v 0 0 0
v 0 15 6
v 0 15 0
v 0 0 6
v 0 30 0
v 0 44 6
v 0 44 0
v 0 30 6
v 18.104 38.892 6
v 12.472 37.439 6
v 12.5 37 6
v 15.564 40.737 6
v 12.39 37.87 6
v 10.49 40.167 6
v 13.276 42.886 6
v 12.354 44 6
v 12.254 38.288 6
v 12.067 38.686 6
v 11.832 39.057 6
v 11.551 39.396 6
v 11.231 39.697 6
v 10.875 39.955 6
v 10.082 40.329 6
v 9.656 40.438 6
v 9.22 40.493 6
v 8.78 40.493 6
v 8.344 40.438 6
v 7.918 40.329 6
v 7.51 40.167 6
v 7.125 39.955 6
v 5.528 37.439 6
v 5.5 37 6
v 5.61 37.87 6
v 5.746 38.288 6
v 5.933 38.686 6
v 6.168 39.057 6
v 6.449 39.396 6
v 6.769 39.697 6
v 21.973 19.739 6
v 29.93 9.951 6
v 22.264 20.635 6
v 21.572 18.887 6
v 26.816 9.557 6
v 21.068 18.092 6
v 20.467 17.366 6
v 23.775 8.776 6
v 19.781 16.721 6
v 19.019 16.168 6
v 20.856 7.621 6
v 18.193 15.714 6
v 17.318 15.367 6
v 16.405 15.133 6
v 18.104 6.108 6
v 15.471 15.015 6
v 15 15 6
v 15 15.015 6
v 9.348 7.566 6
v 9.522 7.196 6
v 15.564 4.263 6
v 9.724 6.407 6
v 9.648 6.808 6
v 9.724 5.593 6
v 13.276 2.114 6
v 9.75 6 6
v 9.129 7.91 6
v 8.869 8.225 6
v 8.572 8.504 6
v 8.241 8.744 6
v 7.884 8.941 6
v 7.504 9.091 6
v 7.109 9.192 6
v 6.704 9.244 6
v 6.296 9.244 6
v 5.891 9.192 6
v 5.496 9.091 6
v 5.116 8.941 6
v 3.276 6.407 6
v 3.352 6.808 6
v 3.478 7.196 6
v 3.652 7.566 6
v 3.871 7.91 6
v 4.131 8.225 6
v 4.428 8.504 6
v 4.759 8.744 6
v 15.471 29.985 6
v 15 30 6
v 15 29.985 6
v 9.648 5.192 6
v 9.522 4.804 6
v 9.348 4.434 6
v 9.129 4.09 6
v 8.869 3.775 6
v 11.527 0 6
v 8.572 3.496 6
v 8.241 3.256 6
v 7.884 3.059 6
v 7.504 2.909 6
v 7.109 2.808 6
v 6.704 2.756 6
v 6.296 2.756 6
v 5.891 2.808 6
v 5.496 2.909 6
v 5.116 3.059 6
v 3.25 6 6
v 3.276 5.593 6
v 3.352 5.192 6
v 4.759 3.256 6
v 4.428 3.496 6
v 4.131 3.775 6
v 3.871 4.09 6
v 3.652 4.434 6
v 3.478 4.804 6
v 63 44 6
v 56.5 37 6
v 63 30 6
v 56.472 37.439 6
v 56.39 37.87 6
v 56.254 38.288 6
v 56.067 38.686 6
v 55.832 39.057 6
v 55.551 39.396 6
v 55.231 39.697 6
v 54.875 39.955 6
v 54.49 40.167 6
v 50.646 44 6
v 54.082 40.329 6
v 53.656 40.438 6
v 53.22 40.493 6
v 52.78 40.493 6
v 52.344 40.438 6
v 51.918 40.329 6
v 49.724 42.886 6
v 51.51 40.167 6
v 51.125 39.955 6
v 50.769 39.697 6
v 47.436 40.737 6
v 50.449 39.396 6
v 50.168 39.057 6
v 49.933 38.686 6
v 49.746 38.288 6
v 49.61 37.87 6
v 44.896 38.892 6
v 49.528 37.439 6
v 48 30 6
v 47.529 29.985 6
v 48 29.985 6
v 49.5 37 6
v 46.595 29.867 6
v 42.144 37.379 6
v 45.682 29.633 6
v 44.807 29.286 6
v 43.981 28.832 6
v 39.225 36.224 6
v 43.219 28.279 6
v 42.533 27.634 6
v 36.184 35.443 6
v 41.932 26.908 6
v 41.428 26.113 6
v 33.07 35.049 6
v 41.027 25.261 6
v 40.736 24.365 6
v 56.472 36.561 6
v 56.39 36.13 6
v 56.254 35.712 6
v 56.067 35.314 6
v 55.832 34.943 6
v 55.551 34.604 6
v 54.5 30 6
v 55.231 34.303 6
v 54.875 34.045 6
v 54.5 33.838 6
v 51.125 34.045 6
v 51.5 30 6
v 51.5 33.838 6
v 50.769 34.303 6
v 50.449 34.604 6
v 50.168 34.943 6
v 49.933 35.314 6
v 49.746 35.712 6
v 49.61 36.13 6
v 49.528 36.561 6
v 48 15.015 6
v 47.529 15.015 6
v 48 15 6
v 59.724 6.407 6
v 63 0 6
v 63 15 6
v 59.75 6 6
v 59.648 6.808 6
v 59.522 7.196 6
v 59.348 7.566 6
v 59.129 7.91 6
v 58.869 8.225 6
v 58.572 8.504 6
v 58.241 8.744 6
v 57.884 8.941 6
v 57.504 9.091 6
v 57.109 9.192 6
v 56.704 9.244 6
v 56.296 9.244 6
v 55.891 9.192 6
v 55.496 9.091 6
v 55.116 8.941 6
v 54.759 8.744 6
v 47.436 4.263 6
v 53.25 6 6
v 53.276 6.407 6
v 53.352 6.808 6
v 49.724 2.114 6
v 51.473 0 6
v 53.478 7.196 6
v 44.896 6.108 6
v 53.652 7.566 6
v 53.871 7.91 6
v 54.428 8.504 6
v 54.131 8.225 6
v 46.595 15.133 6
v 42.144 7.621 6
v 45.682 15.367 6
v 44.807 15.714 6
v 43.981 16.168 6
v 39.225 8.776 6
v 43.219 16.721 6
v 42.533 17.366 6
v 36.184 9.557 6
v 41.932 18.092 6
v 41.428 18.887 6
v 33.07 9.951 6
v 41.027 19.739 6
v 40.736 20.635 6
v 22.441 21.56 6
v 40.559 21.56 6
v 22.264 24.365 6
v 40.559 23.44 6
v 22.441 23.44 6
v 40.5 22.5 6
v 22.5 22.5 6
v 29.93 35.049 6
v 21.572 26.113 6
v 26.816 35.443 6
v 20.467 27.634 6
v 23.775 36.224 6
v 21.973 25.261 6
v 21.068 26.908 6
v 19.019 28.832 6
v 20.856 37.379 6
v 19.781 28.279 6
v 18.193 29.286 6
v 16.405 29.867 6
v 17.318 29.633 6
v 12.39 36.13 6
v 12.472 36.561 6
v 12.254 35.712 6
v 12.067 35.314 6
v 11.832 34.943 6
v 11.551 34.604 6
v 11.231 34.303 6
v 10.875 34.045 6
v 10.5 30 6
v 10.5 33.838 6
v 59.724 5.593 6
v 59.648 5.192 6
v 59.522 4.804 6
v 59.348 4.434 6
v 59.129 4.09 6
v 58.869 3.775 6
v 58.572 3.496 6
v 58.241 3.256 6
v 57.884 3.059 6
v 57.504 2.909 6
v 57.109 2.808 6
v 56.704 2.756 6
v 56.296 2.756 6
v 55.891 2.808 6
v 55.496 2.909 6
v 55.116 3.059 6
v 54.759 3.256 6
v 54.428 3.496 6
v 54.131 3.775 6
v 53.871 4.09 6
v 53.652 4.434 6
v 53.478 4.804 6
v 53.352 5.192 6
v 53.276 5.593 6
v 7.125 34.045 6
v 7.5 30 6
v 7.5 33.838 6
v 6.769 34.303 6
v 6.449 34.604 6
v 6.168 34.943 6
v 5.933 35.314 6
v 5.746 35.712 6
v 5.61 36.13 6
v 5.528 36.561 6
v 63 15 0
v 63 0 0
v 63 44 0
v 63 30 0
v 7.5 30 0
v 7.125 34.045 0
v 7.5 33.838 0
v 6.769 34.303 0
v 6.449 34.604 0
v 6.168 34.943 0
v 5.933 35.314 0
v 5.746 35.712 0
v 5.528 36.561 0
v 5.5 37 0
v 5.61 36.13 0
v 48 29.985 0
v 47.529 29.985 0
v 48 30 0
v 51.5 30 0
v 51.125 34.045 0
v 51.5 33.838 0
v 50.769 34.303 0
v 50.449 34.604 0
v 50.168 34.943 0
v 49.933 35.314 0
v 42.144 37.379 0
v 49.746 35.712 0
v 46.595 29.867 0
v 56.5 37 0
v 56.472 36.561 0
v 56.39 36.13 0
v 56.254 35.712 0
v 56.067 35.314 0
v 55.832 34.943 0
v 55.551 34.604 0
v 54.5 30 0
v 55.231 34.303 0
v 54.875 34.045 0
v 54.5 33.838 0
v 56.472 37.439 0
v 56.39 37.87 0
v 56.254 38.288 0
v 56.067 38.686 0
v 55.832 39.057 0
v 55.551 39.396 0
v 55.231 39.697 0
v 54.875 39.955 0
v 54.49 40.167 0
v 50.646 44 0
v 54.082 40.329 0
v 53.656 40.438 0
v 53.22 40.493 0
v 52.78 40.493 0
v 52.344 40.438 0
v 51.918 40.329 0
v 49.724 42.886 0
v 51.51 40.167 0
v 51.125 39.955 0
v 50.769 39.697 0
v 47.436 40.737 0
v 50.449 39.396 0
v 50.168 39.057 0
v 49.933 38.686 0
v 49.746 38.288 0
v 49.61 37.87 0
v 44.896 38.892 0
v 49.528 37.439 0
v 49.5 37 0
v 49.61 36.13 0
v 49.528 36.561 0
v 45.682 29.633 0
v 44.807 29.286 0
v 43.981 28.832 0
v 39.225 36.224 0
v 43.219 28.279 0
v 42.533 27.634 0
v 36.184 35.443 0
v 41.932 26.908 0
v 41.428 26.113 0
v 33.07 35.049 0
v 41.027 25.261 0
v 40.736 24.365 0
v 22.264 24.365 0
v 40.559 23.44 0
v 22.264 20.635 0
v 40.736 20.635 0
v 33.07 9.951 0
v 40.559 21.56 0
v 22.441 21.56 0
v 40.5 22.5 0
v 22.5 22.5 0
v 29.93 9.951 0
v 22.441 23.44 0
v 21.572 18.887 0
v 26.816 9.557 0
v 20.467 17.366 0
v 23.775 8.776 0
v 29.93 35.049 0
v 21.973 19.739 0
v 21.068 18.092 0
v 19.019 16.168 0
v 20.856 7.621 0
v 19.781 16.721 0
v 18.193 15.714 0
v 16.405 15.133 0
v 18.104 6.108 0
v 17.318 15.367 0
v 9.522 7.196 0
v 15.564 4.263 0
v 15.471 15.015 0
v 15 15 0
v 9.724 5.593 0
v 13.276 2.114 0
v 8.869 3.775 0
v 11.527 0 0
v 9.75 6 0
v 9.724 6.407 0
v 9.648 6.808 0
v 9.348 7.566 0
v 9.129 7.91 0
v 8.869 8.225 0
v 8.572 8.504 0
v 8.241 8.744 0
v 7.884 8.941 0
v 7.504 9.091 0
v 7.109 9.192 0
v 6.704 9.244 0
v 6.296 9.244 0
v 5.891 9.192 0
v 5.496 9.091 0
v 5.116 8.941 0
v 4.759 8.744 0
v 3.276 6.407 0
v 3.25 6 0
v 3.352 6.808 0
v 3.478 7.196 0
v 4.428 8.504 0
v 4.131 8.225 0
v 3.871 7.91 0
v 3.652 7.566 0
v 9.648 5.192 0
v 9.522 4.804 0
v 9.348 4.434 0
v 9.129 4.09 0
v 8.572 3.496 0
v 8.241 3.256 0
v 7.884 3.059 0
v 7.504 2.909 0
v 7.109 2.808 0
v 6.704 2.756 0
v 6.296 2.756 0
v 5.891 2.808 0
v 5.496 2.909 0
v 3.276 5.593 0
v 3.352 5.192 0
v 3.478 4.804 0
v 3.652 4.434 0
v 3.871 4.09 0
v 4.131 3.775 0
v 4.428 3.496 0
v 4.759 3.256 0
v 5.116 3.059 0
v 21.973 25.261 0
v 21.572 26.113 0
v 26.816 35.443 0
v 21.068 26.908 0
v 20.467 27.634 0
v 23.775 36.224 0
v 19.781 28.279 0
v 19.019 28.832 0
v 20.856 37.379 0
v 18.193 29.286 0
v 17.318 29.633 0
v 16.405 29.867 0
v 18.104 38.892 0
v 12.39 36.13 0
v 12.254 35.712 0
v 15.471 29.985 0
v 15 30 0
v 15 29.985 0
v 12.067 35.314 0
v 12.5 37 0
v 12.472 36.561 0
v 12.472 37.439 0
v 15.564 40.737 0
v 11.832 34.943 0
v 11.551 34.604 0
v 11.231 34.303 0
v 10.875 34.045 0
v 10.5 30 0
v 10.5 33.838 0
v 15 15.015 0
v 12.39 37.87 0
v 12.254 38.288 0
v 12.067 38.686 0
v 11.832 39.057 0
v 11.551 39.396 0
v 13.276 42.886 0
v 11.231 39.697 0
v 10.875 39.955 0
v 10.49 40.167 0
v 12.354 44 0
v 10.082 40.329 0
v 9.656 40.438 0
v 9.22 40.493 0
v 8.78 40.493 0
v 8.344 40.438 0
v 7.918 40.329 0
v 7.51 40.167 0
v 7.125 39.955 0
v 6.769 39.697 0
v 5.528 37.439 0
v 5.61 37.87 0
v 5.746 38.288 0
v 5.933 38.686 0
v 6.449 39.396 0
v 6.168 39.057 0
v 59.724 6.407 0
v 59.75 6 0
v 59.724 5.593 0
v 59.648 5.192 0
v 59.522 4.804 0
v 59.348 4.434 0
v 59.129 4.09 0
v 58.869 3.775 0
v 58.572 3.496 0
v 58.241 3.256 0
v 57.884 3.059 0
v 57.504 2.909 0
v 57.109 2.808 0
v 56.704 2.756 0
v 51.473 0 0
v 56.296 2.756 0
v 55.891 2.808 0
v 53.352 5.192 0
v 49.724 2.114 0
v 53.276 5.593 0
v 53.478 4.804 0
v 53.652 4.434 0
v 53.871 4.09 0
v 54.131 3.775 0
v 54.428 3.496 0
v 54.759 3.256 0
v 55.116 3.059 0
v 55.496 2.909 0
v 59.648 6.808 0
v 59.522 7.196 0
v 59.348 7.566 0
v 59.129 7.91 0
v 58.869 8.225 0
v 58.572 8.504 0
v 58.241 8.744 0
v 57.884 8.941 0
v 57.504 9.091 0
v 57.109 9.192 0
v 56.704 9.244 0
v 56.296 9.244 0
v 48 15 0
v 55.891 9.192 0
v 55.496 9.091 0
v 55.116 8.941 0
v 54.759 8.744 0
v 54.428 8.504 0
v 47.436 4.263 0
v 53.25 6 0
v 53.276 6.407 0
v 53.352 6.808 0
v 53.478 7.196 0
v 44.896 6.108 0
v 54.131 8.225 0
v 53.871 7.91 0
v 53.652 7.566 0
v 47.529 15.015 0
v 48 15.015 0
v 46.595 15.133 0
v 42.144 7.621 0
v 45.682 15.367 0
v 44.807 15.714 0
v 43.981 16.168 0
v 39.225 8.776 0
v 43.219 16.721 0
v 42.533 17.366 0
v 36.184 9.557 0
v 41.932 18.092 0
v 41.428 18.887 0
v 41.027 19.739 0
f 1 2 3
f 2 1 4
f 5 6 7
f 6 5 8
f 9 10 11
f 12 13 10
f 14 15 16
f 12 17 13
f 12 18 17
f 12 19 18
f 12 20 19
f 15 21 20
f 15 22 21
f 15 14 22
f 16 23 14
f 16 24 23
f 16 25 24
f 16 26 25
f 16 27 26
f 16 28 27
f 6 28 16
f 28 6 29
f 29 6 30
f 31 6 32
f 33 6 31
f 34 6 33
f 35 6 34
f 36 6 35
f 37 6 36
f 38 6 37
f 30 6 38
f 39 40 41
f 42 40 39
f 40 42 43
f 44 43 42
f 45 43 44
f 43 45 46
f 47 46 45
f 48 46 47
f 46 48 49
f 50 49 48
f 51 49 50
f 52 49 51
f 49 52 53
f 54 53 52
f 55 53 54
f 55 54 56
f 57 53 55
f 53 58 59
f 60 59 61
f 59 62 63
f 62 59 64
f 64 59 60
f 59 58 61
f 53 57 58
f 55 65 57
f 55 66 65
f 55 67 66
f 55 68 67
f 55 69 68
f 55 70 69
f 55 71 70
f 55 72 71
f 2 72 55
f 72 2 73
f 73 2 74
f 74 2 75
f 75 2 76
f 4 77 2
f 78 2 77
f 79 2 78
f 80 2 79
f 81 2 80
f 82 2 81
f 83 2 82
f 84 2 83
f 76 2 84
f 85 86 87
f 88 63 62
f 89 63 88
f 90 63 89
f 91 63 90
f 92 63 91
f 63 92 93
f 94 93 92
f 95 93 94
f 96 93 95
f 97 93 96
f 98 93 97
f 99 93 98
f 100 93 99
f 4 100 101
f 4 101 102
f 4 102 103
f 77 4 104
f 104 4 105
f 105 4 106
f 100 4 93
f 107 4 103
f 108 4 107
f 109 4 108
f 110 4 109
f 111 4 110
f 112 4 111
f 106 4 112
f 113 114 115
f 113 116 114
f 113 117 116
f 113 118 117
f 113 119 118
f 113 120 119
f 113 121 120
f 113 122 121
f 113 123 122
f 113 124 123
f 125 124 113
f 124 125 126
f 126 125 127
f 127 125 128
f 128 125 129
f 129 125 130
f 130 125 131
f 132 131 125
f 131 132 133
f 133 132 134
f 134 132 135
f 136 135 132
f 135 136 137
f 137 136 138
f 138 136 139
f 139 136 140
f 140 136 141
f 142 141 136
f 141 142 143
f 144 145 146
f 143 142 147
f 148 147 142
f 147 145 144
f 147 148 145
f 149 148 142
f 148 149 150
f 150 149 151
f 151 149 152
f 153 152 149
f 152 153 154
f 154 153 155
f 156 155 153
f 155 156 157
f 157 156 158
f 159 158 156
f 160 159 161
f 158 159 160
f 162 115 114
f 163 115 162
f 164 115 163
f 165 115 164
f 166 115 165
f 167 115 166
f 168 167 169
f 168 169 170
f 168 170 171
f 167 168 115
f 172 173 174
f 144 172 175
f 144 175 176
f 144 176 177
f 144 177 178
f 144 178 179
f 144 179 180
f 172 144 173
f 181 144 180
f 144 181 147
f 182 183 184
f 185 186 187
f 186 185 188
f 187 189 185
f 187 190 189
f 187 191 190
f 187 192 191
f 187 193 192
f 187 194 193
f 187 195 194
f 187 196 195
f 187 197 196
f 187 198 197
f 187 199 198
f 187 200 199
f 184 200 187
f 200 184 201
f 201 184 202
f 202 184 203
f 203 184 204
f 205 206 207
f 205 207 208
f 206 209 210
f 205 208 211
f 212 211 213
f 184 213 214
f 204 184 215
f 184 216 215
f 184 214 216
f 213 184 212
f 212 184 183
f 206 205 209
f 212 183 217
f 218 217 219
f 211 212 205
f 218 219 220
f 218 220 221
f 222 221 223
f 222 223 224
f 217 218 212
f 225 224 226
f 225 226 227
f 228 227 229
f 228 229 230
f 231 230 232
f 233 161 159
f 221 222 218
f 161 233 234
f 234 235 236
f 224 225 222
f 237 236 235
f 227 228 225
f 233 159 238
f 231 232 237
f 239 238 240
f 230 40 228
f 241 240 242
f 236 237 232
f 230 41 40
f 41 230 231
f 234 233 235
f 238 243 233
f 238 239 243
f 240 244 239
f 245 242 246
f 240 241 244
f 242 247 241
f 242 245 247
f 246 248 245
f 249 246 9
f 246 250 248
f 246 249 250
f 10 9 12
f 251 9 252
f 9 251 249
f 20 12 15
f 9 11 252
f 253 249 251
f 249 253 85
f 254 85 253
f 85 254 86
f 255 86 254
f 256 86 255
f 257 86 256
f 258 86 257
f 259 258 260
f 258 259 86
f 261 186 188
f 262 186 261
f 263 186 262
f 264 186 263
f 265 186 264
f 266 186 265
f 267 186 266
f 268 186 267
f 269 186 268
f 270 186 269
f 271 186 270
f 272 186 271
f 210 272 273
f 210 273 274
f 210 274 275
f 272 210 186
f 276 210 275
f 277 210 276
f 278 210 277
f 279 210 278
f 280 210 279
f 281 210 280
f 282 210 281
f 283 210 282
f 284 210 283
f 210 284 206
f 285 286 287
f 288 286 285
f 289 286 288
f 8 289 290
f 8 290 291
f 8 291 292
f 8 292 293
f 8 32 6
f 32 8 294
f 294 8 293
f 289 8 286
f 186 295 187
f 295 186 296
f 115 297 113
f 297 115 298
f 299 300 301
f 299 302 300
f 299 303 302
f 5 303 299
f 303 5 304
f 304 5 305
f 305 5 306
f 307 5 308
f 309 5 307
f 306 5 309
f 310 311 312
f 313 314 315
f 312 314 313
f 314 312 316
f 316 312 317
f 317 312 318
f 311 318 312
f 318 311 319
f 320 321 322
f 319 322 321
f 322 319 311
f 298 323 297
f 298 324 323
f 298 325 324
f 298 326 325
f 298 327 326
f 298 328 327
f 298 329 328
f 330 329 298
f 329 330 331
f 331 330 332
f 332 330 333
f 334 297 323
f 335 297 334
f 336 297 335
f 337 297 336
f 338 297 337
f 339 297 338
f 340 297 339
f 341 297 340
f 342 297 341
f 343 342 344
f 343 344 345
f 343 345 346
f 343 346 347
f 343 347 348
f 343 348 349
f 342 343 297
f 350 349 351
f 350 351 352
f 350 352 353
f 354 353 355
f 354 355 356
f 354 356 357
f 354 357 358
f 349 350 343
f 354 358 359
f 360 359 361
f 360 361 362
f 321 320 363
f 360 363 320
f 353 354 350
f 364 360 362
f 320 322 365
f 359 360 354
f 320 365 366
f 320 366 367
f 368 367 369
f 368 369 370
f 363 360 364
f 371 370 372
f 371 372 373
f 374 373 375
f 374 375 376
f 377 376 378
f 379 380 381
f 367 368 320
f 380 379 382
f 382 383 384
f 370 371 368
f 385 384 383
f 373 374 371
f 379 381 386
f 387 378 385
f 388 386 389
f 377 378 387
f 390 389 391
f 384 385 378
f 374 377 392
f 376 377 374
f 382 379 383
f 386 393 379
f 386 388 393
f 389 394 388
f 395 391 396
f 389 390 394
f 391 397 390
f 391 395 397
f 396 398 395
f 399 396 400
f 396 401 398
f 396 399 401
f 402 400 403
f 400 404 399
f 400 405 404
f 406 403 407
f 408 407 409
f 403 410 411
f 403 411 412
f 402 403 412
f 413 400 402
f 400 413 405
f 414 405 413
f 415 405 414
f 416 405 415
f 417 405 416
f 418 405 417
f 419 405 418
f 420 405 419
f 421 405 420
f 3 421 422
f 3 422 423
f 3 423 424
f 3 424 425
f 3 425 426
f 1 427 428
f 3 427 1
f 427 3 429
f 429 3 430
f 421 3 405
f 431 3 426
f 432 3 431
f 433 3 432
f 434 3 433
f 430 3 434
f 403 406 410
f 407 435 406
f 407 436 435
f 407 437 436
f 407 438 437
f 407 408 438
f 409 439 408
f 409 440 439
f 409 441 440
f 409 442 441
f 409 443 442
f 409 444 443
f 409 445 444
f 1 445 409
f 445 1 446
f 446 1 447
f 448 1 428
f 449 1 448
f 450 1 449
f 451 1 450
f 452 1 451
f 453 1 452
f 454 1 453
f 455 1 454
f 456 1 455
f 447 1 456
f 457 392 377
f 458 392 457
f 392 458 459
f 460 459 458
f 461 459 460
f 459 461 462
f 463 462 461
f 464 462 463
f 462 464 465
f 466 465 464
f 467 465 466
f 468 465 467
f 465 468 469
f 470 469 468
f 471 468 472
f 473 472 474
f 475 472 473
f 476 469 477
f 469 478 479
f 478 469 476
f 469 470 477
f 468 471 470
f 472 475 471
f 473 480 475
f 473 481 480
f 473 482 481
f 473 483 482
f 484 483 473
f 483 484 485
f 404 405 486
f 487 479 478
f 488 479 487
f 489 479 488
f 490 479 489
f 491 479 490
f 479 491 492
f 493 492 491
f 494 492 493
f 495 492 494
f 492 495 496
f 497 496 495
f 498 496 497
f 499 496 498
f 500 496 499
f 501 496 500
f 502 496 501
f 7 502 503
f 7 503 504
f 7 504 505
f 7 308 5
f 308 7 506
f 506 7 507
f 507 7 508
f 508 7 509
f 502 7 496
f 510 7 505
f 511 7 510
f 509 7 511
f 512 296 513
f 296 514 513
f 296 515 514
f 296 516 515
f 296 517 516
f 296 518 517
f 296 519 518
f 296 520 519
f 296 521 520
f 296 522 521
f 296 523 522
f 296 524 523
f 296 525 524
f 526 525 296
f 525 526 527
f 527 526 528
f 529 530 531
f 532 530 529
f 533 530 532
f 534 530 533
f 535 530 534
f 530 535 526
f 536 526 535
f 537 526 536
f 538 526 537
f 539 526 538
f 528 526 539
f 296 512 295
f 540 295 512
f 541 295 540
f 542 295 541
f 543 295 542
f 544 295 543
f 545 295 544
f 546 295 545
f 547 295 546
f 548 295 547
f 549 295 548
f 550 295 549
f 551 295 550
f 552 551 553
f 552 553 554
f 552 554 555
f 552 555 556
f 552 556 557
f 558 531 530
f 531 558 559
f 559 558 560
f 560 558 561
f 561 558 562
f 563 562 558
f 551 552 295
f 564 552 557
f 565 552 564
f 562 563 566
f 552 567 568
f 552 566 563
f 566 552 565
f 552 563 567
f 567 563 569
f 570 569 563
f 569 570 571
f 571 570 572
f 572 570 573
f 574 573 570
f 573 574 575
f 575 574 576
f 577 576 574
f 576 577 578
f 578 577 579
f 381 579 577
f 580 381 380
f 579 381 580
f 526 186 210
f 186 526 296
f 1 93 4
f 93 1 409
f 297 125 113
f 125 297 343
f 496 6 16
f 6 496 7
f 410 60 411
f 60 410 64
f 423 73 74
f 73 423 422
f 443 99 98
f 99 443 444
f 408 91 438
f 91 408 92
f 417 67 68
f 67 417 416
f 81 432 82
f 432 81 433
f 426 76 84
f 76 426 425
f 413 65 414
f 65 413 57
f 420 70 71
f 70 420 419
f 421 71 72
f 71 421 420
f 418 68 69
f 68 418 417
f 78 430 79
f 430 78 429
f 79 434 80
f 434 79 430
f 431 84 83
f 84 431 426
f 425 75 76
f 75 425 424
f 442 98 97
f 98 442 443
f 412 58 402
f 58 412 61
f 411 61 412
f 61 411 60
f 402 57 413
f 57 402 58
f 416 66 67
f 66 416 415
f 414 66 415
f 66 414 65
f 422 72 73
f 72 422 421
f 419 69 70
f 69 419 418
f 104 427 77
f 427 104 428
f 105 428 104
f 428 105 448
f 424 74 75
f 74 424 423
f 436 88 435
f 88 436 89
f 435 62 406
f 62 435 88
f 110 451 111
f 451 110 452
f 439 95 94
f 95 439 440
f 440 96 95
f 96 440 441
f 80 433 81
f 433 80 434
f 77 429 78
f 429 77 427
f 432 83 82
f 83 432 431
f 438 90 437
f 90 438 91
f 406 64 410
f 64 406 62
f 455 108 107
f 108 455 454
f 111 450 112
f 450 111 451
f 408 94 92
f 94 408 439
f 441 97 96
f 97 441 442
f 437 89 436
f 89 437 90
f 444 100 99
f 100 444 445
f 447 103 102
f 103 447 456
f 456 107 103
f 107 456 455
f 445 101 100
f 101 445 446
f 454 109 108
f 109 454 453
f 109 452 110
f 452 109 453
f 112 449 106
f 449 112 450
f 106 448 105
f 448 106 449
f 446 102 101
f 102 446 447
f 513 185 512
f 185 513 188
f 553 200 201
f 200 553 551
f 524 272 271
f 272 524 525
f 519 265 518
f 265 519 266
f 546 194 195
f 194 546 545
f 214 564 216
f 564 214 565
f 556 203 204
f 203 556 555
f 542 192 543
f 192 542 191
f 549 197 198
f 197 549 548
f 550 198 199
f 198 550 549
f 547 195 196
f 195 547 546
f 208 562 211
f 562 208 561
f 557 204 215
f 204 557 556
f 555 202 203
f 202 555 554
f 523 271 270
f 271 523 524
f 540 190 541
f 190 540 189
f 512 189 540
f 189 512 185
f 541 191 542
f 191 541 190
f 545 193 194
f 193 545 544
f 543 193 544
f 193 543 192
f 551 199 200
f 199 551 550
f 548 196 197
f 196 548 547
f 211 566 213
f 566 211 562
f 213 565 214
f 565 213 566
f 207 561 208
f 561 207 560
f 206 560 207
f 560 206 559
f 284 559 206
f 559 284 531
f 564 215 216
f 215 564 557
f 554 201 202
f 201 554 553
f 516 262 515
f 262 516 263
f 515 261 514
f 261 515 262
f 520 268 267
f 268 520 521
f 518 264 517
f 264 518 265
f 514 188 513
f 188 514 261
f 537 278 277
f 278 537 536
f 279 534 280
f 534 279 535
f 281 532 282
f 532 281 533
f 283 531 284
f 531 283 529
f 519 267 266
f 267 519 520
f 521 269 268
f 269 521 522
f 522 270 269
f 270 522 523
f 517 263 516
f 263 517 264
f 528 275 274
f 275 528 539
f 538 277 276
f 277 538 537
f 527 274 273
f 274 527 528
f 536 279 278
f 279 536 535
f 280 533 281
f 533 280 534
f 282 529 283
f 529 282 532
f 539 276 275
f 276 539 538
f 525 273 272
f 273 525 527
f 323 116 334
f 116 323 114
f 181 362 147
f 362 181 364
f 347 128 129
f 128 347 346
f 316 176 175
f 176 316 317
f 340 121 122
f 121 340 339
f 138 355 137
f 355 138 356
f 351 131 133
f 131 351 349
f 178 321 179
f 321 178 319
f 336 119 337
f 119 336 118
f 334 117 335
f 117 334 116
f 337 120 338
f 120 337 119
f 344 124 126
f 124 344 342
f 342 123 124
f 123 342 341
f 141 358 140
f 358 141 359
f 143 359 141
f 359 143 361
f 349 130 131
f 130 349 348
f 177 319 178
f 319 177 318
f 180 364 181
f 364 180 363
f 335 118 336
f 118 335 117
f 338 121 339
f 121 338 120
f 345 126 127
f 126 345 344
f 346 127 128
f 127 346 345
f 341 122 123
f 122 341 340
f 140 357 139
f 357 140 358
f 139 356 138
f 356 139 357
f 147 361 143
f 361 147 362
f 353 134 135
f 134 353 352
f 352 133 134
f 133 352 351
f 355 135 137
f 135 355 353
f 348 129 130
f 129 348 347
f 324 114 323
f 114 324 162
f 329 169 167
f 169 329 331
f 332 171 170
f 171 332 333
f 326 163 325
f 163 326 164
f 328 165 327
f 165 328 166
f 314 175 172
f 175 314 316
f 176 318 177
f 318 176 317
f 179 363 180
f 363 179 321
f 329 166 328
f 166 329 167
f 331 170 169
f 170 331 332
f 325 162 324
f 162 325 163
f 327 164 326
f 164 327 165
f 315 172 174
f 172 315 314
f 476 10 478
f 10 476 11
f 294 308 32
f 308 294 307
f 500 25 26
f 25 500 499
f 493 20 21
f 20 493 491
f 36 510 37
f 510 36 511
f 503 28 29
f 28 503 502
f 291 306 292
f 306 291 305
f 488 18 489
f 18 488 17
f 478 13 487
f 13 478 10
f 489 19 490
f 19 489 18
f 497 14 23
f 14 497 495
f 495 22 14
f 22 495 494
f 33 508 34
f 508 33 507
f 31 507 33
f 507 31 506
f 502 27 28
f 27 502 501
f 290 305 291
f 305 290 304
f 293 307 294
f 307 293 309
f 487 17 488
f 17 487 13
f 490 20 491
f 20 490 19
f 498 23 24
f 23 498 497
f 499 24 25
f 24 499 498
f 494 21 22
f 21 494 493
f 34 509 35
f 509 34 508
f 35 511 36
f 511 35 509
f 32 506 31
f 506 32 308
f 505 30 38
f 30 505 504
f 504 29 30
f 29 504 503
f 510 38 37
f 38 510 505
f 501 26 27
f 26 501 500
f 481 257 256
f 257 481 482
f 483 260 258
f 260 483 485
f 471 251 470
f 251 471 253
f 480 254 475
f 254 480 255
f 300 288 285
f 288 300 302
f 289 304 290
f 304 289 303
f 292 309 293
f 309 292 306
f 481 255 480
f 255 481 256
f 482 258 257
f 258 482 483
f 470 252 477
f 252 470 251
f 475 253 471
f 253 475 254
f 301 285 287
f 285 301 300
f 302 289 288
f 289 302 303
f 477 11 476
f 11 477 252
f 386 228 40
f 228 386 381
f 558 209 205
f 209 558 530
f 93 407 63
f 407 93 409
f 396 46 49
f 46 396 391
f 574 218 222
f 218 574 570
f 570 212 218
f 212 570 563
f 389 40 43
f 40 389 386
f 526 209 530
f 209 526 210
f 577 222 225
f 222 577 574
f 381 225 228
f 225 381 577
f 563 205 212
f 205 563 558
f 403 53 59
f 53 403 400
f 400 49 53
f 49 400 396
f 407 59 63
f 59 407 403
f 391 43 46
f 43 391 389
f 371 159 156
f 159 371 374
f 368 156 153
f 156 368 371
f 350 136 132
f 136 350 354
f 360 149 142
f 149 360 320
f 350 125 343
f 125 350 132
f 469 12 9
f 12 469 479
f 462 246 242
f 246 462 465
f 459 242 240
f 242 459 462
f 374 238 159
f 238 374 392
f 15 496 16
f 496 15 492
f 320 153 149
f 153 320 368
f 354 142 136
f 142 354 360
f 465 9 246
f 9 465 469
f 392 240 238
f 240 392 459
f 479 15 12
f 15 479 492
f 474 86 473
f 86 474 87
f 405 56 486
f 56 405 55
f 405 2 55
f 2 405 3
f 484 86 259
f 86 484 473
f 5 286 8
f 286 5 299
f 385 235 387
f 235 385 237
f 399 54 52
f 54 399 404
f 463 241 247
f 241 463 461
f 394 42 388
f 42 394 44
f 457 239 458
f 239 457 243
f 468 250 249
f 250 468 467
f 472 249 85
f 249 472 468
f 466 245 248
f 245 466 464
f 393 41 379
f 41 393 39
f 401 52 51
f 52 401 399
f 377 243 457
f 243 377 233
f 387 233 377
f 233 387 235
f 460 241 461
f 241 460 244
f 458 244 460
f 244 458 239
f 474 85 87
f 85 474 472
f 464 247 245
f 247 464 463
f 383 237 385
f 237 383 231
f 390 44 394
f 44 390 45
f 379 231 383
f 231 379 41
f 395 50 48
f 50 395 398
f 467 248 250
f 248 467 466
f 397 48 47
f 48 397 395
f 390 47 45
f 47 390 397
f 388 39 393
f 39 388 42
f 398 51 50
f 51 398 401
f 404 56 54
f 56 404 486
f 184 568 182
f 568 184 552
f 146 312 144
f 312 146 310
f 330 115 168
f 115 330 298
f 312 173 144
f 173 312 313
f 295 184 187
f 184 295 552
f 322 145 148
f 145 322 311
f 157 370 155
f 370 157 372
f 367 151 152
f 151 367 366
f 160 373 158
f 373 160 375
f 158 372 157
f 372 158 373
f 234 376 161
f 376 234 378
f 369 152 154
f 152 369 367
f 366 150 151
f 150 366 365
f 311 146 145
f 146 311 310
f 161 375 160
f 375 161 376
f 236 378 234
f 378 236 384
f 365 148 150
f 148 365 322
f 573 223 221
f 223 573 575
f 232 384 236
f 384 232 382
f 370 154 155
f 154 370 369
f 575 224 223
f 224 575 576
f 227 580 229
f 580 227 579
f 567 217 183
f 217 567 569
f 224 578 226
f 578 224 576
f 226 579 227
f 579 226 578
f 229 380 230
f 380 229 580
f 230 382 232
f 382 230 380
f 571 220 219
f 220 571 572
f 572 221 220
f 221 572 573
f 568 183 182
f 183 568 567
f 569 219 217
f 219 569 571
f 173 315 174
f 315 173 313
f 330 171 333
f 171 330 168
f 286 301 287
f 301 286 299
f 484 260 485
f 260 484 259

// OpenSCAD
$fn=50;
difference(){
	cube([63,44,6]);
	translate([6.5,6,0])cylinder(7,6.5/2,6.5/2);
	translate([56.5,6,0])cylinder(7,6.5/2,6.5/2);
	
	translate([53,37,0])cylinder(7,7/2,7/2);
	translate([9,37,0])cylinder(7,7/2,7/2);
	
	translate([31.5,-15,0])cylinder(7,50/2,50/2);
	translate([31.5,60,0])cylinder(7,50/2,50/2);
	
	translate([0,15,0])cube([15,15,7]);
	translate([15,22.5,0])cylinder(7,15/2,15/2);

	translate([48,15,0])cube([15,15,7]);
	translate([48,22.5,0])cylinder(7,15/2,15/2);

	translate([51.5,30,0])cube([3,5,7]);
	translate([7.5,30,0])cube([3,5,7]);
}
